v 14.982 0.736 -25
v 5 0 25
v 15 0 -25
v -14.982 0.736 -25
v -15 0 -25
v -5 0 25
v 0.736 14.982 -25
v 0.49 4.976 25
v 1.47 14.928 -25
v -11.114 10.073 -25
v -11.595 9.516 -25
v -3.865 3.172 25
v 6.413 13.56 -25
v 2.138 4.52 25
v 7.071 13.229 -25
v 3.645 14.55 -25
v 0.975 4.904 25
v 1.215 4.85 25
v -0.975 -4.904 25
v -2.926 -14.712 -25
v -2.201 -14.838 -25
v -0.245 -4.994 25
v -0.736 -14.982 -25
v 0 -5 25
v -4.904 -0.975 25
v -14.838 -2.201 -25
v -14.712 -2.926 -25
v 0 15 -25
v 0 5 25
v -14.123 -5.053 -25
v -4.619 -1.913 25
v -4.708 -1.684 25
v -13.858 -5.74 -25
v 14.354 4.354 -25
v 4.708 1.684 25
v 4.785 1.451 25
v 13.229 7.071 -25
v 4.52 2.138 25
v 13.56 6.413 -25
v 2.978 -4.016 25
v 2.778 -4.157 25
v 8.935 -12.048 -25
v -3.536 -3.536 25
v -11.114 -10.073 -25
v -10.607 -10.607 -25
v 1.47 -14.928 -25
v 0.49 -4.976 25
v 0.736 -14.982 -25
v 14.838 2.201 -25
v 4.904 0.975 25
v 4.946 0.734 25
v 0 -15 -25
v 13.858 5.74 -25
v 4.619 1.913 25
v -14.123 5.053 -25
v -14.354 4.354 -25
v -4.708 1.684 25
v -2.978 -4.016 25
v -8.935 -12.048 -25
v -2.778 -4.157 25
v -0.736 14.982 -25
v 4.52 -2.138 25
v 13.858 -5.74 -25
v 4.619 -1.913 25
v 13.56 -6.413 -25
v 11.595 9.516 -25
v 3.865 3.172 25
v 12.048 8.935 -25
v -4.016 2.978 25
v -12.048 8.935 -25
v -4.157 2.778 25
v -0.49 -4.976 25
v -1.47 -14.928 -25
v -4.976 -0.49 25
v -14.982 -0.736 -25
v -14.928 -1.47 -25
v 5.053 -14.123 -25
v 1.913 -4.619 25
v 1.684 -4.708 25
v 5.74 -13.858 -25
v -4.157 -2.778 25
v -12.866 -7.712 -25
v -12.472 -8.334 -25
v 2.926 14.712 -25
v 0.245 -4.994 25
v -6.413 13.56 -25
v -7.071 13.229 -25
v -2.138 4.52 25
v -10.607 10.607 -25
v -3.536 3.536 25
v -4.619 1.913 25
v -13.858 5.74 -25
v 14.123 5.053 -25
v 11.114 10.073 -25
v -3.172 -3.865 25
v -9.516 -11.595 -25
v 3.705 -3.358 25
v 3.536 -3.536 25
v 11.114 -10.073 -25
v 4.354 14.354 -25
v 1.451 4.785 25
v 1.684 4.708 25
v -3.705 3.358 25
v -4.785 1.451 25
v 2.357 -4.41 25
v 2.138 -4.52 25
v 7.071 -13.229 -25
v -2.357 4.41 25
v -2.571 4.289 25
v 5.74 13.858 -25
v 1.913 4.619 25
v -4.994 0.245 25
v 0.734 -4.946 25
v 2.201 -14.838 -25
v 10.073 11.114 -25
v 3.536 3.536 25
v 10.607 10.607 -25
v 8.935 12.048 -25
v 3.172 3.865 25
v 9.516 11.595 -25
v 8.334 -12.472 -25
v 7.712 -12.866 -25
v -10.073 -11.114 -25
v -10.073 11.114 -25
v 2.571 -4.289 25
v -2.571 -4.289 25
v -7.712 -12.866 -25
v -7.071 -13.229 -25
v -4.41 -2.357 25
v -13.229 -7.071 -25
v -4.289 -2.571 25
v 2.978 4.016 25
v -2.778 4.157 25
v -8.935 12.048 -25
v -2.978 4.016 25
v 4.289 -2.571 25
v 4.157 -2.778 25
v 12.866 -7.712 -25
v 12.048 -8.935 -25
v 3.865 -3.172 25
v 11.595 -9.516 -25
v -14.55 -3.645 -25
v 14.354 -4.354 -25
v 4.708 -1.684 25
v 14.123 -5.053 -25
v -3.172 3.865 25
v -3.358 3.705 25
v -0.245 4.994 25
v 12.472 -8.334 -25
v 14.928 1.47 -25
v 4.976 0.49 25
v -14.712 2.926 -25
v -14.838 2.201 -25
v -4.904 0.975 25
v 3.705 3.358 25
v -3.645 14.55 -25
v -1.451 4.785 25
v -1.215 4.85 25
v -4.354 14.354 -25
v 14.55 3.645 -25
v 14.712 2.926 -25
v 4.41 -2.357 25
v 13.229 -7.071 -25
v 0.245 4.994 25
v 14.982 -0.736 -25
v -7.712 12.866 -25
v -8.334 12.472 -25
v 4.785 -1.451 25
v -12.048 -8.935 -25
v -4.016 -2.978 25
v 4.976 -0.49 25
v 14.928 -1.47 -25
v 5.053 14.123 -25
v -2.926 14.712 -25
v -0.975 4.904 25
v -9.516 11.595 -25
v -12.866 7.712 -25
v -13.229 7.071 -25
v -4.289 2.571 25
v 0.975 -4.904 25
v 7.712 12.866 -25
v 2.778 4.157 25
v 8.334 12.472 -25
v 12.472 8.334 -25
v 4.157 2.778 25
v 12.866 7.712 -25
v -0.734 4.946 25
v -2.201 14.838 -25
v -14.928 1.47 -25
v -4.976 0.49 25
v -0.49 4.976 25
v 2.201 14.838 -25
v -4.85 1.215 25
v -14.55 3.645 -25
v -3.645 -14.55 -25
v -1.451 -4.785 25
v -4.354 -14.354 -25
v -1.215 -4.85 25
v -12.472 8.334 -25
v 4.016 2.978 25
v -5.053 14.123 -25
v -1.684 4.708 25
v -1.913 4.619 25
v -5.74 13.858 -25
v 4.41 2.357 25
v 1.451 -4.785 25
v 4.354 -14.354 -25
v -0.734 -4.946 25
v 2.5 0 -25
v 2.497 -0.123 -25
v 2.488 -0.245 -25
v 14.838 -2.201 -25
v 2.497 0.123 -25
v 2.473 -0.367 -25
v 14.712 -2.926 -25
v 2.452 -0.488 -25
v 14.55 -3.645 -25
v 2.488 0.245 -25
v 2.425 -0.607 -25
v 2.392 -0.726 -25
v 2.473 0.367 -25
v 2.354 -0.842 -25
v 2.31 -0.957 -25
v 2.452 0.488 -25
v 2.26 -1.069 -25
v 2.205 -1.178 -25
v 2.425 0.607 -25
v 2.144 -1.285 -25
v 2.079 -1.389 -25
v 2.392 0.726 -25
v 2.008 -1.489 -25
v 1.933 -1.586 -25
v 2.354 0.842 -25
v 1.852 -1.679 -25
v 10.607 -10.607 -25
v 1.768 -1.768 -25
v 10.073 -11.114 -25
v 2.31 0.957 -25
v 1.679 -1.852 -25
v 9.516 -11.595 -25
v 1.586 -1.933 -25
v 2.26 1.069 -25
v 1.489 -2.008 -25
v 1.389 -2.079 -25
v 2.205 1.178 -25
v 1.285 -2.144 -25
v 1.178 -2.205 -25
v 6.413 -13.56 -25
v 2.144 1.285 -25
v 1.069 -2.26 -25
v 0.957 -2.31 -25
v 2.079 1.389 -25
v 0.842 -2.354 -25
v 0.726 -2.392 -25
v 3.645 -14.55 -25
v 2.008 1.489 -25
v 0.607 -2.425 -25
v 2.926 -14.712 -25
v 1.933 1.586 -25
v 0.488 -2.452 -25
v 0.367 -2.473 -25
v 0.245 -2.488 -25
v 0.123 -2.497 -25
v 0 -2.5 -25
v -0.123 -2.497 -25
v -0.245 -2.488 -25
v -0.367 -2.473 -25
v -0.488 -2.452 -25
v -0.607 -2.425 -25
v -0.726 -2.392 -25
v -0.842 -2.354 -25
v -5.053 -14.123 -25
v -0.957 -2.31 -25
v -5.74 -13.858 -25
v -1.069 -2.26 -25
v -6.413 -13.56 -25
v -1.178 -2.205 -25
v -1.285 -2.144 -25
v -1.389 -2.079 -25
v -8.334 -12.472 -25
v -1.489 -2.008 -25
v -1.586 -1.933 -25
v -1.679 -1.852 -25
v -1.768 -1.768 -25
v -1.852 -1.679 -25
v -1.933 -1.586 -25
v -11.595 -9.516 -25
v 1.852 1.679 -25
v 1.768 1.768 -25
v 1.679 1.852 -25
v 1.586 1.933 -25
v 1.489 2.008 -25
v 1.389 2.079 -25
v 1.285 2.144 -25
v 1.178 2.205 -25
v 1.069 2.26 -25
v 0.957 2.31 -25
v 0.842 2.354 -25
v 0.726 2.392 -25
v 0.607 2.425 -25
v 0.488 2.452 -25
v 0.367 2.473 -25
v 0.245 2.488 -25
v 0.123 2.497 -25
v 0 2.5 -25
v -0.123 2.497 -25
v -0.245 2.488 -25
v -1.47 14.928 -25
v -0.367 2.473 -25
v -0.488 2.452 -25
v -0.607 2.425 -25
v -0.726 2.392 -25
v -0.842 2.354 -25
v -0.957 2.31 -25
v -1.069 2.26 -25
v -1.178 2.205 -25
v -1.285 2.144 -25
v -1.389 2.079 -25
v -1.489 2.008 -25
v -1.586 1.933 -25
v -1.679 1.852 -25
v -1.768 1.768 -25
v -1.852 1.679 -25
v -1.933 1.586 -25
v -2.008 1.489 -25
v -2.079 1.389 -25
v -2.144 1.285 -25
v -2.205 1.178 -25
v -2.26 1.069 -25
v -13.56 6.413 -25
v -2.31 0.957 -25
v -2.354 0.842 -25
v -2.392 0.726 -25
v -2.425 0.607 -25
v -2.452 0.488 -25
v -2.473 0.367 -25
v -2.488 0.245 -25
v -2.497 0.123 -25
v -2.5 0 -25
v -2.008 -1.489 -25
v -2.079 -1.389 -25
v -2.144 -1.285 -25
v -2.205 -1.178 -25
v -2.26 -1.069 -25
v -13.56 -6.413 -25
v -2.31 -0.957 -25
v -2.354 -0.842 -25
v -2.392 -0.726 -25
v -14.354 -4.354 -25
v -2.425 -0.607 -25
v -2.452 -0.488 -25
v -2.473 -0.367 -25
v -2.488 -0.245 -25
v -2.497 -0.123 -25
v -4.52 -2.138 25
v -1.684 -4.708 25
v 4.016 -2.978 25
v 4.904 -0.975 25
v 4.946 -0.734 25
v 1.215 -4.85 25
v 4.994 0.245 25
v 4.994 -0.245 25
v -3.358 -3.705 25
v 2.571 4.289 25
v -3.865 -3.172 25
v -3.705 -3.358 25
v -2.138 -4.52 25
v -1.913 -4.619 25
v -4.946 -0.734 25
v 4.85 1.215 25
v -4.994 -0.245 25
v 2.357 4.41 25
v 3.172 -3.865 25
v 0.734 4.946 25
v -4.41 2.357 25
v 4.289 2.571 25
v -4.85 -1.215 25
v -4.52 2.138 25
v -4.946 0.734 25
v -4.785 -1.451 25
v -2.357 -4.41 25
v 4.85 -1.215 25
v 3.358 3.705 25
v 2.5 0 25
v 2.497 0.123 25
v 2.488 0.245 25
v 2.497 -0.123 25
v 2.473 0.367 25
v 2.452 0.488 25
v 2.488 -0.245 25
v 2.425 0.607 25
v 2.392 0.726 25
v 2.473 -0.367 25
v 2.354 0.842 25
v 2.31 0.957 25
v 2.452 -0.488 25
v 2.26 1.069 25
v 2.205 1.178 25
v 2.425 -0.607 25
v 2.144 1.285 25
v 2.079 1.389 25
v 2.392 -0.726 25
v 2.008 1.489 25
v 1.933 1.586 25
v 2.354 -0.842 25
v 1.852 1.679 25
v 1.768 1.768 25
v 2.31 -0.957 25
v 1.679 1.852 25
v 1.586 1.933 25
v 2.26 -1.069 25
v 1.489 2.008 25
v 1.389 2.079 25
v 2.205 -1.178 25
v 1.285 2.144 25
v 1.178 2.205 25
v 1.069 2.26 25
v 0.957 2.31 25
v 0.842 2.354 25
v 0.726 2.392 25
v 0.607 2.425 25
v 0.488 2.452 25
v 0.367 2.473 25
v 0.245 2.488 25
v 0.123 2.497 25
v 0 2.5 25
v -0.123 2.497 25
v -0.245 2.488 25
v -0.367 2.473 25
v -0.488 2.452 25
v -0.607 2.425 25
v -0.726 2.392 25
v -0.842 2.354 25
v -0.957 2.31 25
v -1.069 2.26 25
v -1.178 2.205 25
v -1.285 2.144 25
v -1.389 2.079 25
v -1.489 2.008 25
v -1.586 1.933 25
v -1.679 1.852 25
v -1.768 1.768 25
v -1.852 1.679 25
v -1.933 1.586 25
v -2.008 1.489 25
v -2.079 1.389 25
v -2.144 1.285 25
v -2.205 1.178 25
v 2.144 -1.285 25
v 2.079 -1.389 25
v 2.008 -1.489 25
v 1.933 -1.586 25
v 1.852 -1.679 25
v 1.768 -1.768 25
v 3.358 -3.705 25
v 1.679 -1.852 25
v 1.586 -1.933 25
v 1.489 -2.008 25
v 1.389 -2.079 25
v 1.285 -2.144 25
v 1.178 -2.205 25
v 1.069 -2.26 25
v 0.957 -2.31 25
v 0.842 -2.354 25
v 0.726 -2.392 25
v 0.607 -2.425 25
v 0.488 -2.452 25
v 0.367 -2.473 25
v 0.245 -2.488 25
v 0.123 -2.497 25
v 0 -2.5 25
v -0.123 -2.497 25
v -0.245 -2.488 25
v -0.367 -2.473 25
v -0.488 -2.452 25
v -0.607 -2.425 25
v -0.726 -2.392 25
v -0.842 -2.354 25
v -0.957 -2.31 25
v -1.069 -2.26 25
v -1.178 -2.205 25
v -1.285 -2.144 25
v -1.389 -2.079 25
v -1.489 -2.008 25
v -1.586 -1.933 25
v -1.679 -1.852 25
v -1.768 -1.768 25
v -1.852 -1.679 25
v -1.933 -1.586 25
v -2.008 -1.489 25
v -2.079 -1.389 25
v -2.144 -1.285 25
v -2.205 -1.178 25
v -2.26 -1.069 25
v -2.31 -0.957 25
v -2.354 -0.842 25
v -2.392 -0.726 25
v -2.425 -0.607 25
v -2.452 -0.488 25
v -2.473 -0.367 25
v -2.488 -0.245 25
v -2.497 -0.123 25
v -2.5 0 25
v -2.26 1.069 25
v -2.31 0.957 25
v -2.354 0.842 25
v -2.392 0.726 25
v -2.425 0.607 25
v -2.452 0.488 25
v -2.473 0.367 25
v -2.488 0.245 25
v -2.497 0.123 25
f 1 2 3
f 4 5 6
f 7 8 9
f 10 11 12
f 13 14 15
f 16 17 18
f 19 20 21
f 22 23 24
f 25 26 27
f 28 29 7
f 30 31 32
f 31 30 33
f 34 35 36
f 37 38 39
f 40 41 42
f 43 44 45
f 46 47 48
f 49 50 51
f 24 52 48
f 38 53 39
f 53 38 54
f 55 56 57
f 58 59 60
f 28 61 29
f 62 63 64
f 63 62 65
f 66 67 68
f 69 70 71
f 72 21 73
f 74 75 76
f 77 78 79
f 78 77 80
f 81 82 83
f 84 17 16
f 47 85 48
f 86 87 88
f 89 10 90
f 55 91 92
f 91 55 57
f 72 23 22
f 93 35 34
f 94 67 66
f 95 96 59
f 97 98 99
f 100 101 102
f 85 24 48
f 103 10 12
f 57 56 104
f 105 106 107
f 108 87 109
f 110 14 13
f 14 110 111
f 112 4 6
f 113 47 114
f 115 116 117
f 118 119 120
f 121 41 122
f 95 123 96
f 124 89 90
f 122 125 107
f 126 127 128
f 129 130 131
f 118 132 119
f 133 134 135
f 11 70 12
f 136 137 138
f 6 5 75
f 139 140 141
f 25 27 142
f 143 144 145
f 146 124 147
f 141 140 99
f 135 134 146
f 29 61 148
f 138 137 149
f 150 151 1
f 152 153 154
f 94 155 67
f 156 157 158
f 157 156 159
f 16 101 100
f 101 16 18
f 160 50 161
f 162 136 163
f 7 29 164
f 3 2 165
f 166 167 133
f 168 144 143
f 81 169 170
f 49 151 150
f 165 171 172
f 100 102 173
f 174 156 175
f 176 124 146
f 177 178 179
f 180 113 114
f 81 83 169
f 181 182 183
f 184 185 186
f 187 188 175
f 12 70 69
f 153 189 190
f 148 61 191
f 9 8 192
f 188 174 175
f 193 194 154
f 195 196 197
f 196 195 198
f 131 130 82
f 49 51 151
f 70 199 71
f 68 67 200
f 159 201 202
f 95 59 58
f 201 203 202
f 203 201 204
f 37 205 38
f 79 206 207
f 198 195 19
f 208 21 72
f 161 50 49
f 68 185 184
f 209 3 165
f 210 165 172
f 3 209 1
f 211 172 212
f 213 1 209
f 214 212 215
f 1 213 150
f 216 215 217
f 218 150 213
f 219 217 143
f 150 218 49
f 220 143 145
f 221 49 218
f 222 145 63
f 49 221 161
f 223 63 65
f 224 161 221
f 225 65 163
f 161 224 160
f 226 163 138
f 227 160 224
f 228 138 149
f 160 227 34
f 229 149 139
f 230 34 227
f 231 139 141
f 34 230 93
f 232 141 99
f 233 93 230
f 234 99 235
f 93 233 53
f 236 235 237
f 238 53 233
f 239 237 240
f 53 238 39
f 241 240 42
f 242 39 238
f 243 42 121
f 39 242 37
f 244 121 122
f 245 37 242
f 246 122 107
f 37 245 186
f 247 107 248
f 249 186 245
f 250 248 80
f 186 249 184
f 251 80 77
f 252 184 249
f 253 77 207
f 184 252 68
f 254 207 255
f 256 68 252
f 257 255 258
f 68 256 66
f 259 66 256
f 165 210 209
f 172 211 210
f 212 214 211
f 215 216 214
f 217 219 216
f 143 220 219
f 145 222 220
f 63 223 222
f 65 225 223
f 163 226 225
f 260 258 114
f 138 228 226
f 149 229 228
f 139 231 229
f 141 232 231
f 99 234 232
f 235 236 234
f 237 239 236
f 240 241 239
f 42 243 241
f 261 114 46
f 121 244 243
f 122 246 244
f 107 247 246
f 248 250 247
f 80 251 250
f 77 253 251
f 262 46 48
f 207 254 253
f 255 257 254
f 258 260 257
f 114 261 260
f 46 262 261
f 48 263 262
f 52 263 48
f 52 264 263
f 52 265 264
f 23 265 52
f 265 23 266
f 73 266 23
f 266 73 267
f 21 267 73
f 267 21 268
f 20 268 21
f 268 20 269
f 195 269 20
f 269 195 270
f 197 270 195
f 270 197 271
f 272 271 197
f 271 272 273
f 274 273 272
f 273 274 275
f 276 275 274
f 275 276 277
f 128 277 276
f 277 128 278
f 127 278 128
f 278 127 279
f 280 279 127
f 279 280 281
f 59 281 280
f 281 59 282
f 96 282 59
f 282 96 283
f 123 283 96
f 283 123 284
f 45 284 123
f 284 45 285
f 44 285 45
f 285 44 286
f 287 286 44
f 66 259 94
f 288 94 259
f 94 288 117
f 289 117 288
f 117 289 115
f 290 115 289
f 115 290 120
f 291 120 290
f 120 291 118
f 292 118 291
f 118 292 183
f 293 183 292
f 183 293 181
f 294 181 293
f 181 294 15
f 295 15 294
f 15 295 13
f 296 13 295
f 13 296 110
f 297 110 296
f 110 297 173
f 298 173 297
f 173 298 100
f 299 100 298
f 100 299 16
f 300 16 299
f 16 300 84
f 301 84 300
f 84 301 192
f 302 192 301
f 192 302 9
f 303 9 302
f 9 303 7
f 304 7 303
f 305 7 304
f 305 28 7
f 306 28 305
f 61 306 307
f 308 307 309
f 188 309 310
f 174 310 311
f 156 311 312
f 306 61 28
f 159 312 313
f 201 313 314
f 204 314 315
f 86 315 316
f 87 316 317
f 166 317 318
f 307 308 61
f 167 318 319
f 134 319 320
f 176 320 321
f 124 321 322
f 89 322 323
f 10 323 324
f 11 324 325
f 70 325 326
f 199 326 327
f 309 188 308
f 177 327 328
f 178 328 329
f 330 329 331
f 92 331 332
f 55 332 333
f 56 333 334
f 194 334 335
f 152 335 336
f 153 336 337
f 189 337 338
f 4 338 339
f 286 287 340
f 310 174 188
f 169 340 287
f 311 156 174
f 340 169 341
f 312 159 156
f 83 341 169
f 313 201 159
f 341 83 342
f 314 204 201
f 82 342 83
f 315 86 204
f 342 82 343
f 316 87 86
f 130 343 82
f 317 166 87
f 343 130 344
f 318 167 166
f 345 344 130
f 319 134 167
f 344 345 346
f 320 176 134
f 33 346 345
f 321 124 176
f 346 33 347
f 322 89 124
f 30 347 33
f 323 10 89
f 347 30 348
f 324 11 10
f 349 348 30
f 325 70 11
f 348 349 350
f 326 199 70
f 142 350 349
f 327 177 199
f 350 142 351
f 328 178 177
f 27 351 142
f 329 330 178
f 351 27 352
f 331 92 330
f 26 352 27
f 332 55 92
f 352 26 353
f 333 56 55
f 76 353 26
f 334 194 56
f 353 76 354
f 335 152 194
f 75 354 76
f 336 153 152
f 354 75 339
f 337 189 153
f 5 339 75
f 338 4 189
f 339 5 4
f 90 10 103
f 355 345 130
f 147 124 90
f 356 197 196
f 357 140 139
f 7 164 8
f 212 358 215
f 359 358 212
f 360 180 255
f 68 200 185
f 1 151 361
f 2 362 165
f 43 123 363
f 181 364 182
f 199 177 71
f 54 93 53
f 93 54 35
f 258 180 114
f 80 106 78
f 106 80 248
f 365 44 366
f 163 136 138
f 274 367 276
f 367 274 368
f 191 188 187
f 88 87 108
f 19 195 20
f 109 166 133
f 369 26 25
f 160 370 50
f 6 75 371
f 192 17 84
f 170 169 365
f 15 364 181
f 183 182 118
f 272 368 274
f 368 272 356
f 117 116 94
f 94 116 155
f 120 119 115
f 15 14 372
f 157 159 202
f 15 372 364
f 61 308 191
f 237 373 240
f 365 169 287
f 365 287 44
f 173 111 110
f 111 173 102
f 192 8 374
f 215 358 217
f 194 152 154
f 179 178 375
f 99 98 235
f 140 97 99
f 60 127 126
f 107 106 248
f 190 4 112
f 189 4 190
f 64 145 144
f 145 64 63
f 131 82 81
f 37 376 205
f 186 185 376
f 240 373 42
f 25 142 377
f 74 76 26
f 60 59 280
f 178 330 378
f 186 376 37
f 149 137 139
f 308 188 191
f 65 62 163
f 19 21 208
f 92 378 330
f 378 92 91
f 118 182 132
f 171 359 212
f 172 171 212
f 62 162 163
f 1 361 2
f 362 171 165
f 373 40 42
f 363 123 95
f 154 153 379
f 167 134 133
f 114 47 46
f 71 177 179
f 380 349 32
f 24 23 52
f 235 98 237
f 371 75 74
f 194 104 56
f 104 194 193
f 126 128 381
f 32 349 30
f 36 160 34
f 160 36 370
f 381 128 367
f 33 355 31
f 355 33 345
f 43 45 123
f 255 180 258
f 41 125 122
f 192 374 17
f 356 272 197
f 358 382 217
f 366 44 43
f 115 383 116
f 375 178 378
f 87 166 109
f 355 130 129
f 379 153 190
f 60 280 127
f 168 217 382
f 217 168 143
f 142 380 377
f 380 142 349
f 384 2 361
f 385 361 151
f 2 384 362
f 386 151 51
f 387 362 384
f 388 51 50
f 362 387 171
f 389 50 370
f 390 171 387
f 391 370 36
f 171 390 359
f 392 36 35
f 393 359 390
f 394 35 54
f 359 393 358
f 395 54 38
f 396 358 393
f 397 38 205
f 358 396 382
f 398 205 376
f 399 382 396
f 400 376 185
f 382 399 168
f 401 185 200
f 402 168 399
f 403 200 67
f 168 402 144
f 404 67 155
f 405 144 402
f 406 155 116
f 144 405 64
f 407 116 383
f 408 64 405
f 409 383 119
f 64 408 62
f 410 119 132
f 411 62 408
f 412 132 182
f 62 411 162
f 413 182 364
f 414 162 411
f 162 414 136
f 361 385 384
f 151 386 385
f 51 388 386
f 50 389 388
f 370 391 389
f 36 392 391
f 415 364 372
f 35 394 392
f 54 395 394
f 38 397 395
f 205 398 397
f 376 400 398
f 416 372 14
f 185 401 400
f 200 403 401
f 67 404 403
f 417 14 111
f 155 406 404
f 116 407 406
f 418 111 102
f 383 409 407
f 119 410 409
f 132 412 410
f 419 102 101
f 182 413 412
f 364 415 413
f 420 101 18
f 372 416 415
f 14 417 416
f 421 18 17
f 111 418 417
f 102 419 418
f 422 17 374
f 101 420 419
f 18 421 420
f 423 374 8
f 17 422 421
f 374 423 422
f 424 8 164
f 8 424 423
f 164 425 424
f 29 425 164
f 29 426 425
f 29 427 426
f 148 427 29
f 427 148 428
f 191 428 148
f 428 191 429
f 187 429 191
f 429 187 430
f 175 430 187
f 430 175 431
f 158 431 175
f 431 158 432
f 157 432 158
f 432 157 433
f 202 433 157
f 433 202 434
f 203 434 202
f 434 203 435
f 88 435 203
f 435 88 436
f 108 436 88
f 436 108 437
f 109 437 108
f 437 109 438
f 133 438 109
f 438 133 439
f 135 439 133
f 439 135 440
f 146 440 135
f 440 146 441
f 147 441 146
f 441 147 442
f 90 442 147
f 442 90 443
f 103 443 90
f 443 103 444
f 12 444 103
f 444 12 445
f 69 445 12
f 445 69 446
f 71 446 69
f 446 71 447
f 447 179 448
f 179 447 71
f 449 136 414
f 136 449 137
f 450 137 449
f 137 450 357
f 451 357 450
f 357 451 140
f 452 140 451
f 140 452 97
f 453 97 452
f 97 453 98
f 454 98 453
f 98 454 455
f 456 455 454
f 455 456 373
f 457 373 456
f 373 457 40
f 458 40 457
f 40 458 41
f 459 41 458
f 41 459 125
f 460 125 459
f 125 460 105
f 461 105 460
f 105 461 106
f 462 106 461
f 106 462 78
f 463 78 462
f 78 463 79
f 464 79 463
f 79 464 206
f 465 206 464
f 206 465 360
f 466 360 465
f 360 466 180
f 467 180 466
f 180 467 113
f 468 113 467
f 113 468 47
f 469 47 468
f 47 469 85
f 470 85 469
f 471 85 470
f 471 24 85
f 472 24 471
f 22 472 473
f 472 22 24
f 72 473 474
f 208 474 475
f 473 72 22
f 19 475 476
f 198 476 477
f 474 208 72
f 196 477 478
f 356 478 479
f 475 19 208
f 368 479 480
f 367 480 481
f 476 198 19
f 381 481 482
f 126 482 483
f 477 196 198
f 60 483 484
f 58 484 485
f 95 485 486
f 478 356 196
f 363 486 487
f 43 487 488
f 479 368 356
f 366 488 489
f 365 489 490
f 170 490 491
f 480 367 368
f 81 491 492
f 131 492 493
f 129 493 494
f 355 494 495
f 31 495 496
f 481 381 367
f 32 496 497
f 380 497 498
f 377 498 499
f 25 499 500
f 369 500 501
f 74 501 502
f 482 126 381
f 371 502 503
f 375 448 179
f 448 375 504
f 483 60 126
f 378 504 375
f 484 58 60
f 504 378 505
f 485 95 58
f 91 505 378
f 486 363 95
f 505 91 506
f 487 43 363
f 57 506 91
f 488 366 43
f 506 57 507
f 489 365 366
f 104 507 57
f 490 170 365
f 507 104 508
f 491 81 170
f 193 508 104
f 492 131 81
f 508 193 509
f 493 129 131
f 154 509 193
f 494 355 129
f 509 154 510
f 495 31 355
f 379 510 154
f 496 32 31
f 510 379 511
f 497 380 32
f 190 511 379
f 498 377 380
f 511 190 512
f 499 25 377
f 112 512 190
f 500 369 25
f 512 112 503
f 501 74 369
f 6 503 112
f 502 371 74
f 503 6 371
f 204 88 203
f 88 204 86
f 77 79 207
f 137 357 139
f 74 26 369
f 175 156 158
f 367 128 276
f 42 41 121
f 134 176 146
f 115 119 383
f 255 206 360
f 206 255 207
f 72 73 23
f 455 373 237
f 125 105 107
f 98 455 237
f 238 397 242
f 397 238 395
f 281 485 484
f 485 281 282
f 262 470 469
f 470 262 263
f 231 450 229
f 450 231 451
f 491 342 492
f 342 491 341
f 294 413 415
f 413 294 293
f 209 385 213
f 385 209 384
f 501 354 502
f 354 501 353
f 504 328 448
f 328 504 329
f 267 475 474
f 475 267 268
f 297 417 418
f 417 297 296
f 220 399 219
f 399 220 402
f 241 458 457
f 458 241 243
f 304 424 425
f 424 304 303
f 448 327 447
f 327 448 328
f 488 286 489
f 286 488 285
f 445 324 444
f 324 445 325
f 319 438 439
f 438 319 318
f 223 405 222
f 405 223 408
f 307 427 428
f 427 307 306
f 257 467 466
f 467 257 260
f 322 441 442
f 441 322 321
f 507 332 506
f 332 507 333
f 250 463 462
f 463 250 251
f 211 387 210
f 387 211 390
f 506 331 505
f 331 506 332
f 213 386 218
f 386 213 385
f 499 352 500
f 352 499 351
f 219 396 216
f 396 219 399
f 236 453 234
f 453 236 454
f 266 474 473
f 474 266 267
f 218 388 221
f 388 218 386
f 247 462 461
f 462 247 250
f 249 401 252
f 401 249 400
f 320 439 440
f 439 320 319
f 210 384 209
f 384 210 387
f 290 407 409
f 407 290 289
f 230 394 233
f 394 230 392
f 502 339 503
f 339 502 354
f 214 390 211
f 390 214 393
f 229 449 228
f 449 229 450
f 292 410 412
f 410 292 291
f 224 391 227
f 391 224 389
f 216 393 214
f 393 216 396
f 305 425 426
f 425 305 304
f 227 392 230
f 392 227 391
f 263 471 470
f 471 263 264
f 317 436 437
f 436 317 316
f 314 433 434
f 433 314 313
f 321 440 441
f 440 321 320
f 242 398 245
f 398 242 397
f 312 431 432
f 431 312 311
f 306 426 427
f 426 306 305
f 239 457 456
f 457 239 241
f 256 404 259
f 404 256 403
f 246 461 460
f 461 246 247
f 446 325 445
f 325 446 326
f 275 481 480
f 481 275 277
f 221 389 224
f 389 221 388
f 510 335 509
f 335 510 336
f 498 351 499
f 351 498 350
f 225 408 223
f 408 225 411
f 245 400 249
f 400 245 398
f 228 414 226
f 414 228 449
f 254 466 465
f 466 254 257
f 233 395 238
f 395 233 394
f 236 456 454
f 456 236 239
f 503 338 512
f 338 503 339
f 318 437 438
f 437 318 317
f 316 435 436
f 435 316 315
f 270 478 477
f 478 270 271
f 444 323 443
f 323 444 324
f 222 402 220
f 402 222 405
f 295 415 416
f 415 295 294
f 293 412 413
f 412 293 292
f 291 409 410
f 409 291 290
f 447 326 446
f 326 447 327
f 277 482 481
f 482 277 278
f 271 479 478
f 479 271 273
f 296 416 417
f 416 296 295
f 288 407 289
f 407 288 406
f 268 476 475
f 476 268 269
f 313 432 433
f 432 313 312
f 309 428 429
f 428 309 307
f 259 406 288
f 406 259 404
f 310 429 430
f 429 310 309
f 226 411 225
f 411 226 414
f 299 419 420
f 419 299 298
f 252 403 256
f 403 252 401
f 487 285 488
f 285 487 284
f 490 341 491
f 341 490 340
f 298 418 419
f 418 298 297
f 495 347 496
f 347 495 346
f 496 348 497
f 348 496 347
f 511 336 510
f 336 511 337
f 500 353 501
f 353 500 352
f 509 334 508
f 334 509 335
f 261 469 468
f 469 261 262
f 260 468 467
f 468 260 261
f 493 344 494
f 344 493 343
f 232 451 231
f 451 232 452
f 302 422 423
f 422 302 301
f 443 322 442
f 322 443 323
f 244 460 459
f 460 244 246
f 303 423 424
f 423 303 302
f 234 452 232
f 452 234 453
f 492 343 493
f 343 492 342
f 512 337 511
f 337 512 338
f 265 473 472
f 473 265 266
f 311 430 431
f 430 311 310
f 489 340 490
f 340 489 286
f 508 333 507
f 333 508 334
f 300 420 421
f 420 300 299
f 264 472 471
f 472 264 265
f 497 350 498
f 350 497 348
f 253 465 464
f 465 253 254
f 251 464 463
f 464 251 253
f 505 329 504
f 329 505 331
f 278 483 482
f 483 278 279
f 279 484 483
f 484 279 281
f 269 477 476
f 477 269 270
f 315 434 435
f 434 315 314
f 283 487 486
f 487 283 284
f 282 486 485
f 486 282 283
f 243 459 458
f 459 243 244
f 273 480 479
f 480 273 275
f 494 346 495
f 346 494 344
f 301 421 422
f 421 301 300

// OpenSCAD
$fn = $preview ? 32: 128;

// RADIUS!
opening_radius = 2.5;
small_radius = 5;
big_radius = 15;
length = 50;
tolerance=.001;


difference(){
    cylinder(h=length, r1=big_radius, r2=small_radius, center = true);
    cylinder(h=length+tolerance, r=opening_radius, center=true);
}
